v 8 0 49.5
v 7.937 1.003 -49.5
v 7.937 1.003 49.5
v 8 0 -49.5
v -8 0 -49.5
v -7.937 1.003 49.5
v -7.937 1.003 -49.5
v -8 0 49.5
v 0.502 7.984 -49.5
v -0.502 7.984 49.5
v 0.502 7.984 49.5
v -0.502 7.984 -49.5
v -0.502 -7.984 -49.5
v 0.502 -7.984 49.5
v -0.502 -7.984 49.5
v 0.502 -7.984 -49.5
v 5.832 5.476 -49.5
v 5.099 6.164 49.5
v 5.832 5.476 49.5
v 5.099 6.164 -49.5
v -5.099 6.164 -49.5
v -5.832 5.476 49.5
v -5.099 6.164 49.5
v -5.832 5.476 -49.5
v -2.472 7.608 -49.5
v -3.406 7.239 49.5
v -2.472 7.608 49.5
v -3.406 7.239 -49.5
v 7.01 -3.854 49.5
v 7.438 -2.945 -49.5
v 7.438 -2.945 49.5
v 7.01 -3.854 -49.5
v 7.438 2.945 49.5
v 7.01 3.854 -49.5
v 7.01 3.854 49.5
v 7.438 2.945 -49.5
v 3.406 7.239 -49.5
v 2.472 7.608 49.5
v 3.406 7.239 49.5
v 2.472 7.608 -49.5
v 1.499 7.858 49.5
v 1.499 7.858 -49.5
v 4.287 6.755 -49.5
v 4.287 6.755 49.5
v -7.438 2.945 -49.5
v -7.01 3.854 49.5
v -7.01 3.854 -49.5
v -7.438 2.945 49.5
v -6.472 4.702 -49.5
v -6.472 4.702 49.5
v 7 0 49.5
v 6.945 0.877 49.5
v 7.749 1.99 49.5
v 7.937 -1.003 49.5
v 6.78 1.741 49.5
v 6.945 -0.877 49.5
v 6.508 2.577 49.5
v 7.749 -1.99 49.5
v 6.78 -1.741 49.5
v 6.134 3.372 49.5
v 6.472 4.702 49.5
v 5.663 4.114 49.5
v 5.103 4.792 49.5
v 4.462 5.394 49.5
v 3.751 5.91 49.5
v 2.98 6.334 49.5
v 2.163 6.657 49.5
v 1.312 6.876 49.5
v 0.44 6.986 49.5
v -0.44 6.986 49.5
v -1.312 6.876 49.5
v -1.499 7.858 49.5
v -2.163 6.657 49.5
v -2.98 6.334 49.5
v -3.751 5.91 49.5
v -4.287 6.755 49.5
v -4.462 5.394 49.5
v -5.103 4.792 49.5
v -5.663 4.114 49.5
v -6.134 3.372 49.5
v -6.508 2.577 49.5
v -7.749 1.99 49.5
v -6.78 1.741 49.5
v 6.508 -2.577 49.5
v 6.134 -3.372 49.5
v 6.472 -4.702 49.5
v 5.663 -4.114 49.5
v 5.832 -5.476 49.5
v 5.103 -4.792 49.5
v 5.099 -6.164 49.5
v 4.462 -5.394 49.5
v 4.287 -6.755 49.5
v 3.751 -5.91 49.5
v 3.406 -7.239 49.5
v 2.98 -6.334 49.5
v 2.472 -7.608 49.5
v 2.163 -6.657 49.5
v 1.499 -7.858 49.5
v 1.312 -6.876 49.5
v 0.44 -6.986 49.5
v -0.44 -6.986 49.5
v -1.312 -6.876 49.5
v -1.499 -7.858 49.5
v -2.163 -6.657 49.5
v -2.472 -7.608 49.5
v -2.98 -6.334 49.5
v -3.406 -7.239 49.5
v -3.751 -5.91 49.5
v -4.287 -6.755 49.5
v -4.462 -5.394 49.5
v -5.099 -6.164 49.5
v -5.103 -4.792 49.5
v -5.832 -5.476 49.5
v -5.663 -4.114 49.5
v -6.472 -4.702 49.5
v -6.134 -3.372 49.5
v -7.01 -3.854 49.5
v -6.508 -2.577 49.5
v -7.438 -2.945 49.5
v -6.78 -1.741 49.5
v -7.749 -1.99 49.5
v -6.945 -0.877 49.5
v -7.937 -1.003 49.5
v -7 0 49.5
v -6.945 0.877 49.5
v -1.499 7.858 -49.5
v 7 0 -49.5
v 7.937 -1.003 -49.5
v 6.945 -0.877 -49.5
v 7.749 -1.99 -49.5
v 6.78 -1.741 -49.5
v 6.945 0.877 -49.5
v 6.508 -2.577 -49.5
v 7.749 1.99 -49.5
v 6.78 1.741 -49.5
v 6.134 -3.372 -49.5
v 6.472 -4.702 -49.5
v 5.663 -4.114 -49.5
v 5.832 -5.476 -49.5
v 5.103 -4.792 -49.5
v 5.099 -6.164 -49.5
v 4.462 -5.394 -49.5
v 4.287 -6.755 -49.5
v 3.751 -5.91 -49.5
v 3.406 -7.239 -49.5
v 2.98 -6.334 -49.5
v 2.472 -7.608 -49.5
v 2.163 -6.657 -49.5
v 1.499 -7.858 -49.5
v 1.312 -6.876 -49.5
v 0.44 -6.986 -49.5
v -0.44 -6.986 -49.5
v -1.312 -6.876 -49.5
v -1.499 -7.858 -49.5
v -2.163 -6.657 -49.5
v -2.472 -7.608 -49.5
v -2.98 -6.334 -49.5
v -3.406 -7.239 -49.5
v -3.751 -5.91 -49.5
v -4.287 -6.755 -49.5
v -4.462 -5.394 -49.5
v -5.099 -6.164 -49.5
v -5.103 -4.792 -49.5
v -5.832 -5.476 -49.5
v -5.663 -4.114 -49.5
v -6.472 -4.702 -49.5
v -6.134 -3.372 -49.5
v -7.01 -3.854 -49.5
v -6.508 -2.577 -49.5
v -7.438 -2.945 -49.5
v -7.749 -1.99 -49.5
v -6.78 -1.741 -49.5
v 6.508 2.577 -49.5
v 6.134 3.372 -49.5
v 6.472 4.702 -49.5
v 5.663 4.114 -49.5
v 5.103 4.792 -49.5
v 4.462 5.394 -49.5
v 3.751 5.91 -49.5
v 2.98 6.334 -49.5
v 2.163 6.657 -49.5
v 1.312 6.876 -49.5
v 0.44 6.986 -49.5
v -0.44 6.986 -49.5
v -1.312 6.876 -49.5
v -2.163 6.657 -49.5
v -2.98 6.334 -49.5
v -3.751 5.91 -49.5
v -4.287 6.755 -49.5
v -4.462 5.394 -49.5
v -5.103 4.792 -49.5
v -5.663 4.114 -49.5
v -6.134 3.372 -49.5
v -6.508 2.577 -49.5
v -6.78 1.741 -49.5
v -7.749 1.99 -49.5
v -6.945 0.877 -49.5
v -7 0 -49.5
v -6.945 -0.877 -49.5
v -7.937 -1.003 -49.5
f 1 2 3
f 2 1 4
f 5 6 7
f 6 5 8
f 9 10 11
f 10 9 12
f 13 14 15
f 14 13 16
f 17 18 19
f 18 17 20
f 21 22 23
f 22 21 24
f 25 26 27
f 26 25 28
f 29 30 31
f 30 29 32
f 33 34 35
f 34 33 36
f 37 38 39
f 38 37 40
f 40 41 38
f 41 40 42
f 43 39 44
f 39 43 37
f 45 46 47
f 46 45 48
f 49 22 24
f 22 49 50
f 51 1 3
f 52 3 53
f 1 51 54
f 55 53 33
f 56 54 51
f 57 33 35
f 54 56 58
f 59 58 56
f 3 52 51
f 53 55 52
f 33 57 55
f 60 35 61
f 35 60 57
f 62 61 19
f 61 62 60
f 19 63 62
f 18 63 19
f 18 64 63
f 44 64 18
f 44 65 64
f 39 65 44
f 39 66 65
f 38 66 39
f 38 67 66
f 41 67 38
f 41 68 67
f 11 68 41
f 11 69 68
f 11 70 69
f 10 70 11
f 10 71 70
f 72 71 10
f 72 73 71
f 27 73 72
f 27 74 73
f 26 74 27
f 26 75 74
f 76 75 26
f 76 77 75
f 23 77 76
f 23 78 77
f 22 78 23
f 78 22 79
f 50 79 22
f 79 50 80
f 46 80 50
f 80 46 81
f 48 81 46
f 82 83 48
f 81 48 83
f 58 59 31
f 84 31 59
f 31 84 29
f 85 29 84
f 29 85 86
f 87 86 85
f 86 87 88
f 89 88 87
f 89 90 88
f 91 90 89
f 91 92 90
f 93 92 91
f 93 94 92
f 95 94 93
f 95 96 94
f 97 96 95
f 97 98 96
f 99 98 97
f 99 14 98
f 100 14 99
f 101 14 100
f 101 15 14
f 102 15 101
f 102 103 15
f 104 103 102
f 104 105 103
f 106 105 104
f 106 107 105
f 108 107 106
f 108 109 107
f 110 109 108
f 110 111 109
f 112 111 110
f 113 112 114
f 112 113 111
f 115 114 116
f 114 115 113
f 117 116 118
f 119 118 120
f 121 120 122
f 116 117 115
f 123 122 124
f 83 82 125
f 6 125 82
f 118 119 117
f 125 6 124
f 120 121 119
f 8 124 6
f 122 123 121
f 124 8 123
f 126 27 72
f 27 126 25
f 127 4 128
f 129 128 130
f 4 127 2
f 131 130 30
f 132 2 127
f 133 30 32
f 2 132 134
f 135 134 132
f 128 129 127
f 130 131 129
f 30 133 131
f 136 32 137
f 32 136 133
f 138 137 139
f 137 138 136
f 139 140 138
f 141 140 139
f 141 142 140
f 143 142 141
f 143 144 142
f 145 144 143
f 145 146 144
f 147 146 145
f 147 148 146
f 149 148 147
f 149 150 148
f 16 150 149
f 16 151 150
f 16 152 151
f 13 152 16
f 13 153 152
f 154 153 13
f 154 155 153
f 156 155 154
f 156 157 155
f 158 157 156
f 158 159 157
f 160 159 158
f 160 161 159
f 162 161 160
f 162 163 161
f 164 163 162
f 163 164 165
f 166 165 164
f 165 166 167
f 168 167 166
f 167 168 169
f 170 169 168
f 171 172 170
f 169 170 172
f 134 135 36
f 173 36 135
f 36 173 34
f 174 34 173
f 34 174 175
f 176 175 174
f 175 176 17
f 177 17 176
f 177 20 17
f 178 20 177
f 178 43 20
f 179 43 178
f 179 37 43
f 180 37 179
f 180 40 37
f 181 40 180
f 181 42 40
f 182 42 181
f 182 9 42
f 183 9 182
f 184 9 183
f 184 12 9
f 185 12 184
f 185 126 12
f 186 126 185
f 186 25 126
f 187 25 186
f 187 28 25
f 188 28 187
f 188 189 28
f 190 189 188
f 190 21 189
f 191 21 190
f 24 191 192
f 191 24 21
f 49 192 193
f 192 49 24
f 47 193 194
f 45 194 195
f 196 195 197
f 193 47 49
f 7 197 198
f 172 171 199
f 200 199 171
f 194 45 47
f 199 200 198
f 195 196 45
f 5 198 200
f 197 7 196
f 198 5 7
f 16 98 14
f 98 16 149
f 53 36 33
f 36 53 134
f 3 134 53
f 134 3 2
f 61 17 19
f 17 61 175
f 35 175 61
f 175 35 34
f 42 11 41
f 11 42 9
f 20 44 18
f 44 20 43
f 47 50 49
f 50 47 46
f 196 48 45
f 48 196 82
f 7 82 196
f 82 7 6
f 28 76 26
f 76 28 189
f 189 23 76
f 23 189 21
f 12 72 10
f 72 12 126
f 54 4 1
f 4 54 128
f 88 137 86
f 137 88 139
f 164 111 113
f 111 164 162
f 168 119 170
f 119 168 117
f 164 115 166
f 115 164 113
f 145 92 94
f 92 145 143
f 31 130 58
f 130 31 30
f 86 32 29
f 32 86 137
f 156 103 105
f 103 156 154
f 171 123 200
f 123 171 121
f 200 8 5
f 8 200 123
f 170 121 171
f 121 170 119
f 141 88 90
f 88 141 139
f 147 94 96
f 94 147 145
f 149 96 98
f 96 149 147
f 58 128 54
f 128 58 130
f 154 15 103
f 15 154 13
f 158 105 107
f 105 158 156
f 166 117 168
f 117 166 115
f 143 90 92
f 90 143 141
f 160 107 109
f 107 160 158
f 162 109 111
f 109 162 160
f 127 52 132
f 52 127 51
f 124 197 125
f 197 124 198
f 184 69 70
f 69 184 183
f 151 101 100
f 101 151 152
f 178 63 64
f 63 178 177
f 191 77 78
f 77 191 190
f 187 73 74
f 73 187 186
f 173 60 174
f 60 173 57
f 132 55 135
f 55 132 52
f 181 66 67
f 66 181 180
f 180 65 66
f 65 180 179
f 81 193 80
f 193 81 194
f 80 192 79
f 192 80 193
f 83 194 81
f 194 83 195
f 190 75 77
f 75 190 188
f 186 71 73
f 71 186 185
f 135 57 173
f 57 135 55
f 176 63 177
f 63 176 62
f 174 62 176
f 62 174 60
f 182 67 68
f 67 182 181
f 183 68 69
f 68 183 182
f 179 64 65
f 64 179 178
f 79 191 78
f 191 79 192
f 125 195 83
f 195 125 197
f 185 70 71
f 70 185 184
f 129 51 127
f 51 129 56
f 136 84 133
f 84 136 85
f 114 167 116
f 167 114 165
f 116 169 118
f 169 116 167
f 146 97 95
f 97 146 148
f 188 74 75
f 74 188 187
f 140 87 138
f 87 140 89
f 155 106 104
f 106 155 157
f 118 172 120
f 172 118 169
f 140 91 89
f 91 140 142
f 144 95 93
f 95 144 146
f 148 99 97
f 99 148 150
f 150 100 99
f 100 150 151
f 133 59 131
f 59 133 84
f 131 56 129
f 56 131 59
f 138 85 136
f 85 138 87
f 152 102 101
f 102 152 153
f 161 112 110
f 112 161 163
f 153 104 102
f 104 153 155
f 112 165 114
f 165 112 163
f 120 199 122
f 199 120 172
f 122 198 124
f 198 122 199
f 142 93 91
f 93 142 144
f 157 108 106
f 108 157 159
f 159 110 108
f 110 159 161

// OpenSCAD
$fn = 50;


difference() {
	union() {
		translate(v = [0, 0, -49.5000000000]) {
			cylinder(h = 99, r = 8.0000000000);
		}
	}
	union() {
		translate(v = [0, 0, -100.0000000000]) {
			cylinder(h = 200, r = 7);
		}
	}
}
